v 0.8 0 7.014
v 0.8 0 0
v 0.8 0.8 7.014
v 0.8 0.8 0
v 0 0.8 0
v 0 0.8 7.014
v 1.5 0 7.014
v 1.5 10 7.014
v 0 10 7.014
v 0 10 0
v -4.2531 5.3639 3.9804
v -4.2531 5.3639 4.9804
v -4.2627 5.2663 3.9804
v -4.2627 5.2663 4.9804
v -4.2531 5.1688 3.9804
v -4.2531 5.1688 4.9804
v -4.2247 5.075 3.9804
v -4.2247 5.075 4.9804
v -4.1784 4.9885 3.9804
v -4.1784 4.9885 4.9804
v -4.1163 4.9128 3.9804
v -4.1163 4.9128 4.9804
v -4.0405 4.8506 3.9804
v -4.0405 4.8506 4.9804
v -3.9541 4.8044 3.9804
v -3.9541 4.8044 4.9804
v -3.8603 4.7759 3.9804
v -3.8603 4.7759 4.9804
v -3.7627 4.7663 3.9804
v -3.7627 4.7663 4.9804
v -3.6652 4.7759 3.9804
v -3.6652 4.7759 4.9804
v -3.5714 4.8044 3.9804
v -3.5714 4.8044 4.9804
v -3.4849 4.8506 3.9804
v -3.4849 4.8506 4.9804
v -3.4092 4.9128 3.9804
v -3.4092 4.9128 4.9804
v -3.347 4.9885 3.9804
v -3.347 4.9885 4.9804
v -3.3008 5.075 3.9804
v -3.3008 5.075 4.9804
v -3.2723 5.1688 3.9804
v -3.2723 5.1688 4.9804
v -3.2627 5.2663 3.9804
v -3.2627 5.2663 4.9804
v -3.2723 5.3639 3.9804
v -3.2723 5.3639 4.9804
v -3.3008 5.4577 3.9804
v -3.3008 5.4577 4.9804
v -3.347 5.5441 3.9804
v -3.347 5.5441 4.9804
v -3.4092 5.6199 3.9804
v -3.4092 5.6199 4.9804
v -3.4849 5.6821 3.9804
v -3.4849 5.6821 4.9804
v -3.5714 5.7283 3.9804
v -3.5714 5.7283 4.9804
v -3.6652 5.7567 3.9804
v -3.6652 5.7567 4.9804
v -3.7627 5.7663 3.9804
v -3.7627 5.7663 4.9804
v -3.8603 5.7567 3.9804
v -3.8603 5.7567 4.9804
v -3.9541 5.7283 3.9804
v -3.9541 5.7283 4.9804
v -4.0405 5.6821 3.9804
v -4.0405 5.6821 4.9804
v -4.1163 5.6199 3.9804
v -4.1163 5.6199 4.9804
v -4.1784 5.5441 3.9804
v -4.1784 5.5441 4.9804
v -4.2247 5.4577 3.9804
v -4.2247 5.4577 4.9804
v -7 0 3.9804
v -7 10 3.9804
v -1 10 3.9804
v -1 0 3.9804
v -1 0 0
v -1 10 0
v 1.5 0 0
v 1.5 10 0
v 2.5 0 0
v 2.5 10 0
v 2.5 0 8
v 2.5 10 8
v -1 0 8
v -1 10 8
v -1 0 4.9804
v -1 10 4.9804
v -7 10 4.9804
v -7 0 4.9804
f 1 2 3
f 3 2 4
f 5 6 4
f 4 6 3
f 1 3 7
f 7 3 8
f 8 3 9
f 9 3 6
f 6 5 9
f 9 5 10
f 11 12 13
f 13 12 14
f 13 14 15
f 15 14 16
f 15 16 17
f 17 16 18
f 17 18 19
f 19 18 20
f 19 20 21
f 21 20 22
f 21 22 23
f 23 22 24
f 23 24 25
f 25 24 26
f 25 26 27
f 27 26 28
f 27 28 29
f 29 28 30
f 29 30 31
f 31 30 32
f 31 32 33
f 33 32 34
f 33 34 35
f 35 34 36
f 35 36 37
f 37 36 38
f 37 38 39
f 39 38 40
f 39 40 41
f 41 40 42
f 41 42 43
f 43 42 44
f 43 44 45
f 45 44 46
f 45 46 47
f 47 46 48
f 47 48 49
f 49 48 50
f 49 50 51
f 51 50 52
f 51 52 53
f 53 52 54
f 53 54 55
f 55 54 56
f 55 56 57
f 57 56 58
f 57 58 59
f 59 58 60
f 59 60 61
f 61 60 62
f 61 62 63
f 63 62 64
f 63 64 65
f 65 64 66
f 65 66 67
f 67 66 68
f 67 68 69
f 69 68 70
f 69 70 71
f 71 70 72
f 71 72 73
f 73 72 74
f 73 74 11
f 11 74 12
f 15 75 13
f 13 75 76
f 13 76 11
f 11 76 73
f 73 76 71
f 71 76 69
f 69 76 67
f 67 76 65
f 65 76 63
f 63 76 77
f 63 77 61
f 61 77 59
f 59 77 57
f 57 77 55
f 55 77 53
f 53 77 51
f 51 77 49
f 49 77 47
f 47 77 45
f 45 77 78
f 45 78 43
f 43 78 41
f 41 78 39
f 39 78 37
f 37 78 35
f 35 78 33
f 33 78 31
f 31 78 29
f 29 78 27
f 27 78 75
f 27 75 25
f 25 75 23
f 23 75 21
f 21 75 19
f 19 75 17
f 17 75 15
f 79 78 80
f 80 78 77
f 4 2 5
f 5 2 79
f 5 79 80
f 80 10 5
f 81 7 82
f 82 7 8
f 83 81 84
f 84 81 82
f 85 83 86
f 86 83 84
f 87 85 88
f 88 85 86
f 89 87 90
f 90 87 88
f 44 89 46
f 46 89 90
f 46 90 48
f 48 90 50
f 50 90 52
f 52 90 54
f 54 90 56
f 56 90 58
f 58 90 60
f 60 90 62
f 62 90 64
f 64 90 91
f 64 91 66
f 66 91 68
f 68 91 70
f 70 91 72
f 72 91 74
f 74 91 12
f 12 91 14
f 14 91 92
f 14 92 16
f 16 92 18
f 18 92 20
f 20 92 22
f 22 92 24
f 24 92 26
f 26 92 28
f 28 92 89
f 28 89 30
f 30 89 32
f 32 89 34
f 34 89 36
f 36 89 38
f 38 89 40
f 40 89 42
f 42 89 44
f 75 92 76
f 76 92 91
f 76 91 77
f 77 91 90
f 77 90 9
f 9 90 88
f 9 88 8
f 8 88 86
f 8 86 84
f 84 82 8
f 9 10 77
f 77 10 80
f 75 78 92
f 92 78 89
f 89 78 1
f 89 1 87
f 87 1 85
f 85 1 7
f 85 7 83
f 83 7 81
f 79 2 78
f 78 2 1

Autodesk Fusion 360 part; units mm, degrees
sketch "Sketch1" plane through (0, 0, 0) normal (0, 1, 0) x (1, 0, 0) in component "Limit Interrupter"
  line L0 (0, 0) -> (0, -7.014)
  line L1 (0, -7.014) -> (1.5, -7.014)
  line L2 (1.5, -7.014) -> (1.5, 0)
  line L3 (1.5, 0) -> (2.5, 0)
  line L4 (2.5, 0) -> (2.5, -8)
  line L5 (2.5, -8) -> (-1, -8)
  line L6 (-1, -8) -> (-1, 0)
  line L7 (-1, 0) -> (0, 0)
  line L8 (-1, -4.9804) -> (-7, -4.9804)
  line L9 (-7, -4.9804) -> (-7, -3.9804)
  line L10 (-7, -3.9804) -> (-1, -3.9804)
  dimension "d1" = 1
  dimension "d2" = 3.5
  dimension "d3" = 1.5
  dimension "d4" = 6
  dimension "d5" = 1
  dimension "d6" = 8
  dimension "d7" = 8
extrude "Extrude1" add sketch "Sketch1" along normal blind 10 in component "Limit Interrupter"
hole "Hole1" at (-3.7627, 5.2663, 4.9804) direction (0, 0, -1) diameter 1 depth 2 tip angle 118 in component "Limit Interrupter"
sketch "Sketch1 (2)" plane through (0, 0, 0) normal (0, -1, 0) x (1, 0, 0)
  line L0 (-7, 4.9804) -> (-7, 3.9804)
  line L1 (-7, 3.9804) -> (-1, 3.9804)
  line L2 (-1, 3.9804) -> (-1, 0)
  line L3 (-1, 0) -> (0, 0)
  line L4 (0, 0) -> (0, 7.014)
  line L5 (0, 7.014) -> (1.5, 7.014)
  line L6 (1.5, 7.014) -> (1.5, 0)
  line L7 (1.5, 0) -> (2.5, 0)
  line L8 (2.5, 0) -> (2.5, 8)
  line L9 (2.5, 8) -> (-1, 8)
  line L10 (-1, 8) -> (-1, 4.9804)
  line L11 (-1, 4.9804) -> (-7, 4.9804)
  line L12 (0, 0) -> (0.8, 0)
  line L13 (0.8, 0) -> (0.8, 7.014)
  line L14 (0.8, 7.014) -> (0, 7.014)
  dimension "d13" = 0.8
  dimension "d14" = 7.014
extrude "Extrude2" add sketch "Sketch1 (2)" against normal blind 0.8 contours L4 L5 L12 L13 L14 in component "Limit Interrupter"
component "Limit Interrupter" placed x (1, 0, 0) y (0, 1, 0) z (0, 0, 1) at (0, 0, 0)
